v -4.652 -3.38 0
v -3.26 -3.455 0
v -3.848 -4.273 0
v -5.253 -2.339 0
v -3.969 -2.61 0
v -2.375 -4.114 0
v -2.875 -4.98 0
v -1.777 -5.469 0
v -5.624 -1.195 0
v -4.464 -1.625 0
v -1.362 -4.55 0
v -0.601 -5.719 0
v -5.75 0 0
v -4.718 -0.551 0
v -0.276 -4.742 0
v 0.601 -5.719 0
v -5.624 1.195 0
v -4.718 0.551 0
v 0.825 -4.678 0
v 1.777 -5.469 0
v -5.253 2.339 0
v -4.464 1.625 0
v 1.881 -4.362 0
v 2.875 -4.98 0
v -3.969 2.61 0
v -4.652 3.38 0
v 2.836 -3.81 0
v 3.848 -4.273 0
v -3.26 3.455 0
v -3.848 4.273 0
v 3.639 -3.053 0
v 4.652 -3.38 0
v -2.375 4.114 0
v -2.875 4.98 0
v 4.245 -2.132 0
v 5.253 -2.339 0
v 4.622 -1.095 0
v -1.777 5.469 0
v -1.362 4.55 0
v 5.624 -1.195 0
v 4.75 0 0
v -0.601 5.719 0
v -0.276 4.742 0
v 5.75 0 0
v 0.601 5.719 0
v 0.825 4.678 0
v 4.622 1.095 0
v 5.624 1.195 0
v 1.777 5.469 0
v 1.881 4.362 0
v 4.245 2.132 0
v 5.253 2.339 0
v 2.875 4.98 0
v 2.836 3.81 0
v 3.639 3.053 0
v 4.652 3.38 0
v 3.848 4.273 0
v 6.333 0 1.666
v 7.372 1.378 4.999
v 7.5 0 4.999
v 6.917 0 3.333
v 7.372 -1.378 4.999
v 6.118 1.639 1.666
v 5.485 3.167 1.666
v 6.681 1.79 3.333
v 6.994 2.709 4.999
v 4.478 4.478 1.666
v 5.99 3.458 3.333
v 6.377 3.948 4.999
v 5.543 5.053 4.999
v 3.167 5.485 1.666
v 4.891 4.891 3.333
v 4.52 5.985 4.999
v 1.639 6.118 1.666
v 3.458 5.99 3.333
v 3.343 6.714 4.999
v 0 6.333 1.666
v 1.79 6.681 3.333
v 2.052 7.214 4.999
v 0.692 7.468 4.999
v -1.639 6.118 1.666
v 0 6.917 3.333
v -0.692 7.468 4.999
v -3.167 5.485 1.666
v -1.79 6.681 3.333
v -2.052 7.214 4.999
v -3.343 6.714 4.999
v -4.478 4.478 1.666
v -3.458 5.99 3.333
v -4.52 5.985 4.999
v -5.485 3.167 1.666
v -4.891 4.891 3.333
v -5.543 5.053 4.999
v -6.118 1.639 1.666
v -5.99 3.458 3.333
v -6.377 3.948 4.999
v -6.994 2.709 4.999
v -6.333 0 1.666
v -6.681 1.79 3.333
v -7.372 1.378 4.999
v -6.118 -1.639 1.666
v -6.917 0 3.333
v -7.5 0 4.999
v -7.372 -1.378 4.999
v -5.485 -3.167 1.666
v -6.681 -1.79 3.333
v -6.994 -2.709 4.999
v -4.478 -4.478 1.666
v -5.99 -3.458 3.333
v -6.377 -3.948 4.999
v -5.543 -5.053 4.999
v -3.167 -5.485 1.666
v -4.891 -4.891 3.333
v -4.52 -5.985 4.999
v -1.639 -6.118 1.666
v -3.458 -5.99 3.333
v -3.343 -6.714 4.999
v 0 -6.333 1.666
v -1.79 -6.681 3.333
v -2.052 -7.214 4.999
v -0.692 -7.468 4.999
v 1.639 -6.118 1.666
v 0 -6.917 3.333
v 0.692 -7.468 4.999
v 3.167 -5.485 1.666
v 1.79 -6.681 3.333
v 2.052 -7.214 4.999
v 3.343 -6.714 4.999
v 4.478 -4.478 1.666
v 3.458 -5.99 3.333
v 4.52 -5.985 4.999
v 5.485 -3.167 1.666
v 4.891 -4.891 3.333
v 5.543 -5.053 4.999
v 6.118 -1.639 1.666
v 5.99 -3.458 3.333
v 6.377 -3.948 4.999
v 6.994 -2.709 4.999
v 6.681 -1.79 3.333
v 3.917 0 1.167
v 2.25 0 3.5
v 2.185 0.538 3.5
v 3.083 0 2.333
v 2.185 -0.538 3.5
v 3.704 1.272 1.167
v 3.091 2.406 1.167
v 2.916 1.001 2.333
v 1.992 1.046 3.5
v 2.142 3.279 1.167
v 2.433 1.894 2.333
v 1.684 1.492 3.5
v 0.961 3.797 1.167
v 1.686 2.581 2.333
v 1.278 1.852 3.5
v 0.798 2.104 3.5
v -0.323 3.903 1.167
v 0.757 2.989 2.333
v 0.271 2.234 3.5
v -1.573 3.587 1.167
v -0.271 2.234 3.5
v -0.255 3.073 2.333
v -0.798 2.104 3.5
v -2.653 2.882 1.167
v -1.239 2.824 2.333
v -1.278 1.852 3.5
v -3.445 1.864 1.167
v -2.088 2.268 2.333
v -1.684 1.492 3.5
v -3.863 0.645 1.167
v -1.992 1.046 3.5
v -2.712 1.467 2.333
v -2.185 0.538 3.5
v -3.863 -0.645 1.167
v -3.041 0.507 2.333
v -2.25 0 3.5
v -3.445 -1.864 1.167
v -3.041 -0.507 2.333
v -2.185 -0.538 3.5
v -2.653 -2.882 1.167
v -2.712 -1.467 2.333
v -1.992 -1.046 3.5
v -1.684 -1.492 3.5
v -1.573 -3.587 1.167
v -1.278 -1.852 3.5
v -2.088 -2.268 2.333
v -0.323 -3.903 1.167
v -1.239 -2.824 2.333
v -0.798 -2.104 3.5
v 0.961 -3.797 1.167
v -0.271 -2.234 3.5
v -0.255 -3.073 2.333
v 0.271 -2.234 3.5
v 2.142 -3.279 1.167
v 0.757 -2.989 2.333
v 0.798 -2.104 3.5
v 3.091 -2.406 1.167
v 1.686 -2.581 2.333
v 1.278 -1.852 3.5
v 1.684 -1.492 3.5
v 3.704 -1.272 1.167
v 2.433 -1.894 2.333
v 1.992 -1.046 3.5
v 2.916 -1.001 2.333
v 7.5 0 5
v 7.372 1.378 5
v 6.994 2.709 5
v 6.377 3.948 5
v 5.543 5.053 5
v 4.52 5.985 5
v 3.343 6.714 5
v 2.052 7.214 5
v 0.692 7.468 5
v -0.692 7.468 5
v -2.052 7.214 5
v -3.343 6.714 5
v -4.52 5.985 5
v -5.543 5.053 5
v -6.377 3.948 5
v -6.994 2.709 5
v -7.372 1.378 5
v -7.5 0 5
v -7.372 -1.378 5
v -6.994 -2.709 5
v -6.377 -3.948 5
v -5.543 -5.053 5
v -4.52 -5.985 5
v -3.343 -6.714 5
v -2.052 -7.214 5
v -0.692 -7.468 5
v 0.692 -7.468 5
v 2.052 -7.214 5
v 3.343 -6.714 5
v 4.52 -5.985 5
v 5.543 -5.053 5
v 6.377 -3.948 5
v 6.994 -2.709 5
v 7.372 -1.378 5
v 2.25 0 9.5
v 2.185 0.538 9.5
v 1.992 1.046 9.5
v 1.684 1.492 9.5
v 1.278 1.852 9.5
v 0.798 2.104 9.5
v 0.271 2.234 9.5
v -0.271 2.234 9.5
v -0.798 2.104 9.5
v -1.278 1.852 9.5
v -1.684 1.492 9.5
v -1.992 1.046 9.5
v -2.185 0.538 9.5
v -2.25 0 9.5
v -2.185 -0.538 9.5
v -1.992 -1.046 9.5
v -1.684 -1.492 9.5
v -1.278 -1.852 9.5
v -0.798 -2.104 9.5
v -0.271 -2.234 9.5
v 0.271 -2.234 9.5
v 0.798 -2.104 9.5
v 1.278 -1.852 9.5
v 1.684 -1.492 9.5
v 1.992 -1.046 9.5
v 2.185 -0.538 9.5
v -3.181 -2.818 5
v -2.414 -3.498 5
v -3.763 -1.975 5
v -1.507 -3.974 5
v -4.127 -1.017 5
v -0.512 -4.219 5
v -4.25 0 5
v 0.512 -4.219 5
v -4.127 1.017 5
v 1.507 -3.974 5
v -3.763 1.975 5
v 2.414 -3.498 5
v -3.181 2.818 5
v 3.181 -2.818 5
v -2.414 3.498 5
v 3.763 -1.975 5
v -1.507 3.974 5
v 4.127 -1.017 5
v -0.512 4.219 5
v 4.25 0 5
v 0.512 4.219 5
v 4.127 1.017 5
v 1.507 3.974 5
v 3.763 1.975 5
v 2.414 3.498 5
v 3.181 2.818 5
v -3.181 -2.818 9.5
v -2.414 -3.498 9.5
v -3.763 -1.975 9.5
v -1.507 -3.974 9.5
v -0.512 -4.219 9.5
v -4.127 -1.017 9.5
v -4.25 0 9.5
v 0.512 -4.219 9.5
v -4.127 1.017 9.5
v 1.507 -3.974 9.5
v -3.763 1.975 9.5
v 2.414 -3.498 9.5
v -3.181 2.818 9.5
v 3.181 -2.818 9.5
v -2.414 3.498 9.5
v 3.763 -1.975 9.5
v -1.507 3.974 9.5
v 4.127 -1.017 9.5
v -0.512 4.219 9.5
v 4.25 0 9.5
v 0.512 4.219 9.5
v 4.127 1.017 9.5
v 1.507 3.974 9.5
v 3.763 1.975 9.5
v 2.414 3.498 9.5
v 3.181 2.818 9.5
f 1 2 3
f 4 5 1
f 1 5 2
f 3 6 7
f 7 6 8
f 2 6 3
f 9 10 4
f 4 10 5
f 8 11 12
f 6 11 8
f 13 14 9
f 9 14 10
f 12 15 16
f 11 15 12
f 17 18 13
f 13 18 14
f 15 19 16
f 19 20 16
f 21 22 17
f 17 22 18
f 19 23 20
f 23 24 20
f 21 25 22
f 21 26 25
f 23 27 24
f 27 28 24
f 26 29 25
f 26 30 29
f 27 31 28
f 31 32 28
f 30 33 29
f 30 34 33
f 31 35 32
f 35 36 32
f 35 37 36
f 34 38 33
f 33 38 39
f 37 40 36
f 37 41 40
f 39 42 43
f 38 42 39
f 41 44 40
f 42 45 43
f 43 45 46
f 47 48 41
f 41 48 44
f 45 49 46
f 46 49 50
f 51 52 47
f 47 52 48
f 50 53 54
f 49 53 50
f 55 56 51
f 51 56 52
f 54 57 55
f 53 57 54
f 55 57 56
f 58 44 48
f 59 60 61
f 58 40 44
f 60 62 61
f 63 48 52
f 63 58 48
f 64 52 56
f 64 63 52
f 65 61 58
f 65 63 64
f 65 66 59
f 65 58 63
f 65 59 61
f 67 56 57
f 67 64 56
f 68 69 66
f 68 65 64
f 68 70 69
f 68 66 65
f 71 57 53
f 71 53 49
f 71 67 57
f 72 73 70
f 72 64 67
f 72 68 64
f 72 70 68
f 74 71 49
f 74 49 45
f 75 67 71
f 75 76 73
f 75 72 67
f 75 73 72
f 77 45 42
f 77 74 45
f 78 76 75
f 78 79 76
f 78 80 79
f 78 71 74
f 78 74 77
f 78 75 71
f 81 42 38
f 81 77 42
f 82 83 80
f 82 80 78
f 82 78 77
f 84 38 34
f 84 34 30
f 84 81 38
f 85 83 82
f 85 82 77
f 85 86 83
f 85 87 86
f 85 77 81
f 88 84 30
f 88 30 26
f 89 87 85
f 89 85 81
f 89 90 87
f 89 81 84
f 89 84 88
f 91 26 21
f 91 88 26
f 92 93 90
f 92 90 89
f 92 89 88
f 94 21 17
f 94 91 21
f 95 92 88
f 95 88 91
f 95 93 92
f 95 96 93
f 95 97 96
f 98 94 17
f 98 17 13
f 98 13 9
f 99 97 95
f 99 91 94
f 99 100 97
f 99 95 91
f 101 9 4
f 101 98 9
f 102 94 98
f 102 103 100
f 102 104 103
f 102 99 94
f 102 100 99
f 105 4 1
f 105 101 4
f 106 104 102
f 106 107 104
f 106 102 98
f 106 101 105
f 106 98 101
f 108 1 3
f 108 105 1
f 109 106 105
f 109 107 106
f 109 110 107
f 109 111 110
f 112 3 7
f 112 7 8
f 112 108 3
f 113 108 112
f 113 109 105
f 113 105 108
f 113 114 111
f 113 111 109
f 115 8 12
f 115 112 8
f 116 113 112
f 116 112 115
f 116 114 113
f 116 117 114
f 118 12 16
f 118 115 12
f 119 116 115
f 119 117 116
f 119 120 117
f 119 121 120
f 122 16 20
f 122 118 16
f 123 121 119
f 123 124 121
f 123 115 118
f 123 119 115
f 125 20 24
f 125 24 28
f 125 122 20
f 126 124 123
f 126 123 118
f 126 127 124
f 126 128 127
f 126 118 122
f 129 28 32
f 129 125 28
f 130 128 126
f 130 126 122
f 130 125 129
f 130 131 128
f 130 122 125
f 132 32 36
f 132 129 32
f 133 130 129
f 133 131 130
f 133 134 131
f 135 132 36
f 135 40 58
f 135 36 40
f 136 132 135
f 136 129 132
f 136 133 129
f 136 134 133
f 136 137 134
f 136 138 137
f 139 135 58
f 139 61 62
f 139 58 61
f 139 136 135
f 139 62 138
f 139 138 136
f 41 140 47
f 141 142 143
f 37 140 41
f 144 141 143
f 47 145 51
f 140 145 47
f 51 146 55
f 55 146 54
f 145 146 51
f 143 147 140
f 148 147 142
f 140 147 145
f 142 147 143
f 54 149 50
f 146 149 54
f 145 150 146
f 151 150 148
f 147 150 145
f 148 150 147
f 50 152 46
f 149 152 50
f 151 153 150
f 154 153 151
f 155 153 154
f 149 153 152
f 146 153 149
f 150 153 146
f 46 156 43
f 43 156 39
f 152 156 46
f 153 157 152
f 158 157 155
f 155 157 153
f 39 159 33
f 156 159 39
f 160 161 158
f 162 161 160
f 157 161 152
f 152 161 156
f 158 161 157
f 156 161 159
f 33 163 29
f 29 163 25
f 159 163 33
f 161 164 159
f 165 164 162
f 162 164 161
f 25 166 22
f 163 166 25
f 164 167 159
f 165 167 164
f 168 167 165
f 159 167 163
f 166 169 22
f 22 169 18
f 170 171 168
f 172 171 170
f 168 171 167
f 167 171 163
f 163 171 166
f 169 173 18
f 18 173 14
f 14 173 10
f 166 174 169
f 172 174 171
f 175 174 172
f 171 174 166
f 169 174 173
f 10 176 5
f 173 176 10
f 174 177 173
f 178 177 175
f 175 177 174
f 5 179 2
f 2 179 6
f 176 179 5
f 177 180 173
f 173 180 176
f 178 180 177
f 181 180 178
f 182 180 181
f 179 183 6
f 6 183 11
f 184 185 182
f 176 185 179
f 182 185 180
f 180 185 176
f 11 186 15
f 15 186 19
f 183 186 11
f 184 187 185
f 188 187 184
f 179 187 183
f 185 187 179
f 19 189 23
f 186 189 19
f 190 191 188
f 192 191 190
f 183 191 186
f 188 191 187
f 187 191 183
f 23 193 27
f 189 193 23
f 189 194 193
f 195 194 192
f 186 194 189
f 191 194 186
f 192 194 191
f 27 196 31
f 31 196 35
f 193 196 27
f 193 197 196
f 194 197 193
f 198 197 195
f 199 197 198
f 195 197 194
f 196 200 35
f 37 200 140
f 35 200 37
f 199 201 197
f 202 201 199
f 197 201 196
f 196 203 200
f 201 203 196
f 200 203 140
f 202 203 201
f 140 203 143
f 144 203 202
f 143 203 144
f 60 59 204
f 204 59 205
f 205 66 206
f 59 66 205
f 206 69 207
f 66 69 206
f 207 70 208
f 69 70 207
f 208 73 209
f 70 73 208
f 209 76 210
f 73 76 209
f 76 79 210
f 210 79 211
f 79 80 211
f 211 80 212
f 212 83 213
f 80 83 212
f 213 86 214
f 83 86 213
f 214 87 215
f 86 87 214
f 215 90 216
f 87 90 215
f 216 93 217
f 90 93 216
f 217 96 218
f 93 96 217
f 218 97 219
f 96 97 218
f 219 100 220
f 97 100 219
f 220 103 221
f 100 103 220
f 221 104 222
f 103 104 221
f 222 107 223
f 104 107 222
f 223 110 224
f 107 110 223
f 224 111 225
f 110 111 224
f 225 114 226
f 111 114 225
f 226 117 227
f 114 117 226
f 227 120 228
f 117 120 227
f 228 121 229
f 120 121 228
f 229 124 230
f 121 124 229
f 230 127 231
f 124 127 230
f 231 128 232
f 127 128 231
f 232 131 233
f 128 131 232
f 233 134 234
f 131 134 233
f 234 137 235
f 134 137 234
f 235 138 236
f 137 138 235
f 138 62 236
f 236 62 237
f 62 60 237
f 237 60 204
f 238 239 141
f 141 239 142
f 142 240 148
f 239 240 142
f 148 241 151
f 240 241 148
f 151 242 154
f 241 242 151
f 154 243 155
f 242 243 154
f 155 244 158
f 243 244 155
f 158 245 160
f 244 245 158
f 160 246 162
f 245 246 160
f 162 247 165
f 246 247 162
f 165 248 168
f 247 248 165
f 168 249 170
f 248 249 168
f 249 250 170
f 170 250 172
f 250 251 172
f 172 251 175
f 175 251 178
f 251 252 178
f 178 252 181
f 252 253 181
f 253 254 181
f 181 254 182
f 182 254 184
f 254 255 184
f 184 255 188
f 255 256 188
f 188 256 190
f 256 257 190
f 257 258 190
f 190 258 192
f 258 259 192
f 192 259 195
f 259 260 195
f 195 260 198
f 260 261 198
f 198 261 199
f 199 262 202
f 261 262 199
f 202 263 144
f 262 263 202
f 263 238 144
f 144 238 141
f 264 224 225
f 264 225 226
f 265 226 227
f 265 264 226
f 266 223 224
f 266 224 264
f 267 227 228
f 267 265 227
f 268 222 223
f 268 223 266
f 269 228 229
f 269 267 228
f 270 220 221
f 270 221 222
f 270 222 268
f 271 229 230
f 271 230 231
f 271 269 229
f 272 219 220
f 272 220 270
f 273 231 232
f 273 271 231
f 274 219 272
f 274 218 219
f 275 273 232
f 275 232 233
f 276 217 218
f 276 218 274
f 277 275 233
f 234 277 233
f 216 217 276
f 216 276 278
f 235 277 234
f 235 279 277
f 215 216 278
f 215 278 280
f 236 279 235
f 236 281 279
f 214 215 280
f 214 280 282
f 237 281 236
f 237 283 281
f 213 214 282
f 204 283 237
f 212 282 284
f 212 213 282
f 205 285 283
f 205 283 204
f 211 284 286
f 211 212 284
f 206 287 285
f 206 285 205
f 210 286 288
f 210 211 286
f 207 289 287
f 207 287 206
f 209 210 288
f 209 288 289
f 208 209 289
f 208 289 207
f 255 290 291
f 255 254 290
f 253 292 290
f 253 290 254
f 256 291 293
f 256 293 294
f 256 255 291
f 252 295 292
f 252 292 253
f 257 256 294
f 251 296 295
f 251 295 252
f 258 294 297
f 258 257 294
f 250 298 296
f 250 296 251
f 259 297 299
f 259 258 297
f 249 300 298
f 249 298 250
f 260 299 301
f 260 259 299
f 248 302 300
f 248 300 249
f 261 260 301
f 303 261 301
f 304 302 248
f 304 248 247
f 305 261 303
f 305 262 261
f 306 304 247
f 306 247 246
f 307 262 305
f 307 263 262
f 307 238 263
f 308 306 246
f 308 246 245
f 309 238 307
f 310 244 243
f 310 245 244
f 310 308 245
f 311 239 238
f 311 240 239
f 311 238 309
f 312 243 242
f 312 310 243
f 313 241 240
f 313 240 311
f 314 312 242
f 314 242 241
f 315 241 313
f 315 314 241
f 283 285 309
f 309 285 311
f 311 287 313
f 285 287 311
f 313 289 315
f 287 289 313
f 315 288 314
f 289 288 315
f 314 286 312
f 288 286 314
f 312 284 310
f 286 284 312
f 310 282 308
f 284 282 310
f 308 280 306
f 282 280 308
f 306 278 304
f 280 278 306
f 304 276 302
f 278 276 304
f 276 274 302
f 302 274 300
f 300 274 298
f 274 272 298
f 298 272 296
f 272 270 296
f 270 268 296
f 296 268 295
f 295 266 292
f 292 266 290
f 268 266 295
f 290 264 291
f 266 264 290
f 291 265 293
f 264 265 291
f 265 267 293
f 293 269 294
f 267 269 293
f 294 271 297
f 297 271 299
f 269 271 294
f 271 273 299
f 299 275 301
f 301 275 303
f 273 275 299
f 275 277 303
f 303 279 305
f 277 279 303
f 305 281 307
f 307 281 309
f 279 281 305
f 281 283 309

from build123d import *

# Parameters (mm, degrees)
SKETCH_R         = 7.5
PAD_DEPTH        = 5
SKETCH001_R      = 4.25
PAD001_DEPTH     = 4.5
SKETCH002_R      = 2.25
POCKET_DEPTH     = 9.501
CHAMFER_SIZE2    = 3.5
CHAMFER_SIZE     = 2.5
CHAMFER001_SIZE2 = 4.999
CHAMFER001_SIZE  = 1.75


with BuildPart() as part:
    # Sketch → Pad (new body)
    with BuildSketch(Plane.XY):
        Circle(SKETCH_R)
    extrude(amount=PAD_DEPTH)

    # Sketch001 (on Face3 of Pad) → Pad001 (join)
    with BuildSketch(Plane.XY.offset(5)):
        Circle(SKETCH001_R)
    extrude(amount=PAD001_DEPTH)

    # Sketch002 (on Face5 of Pad001) → Pocket (cut, through all)
    with BuildSketch(Plane.XY.offset(9.5)):
        Circle(SKETCH002_R)
    extrude(amount=-POCKET_DEPTH, mode=Mode.SUBTRACT)

    # Chamfer
    chamfer_edges = [part.edges().sort_by_distance(p)[0] for p in [
        (-2.25, 0, 0),
    ]]
    chamfer_side = part.faces().sort_by_distance((-7.287868, 0, 0))[0]
    chamfer(chamfer_edges, length=CHAMFER_SIZE, length2=CHAMFER_SIZE2, reference=chamfer_side)

    # Chamfer001
    chamfer001_edges = [part.edges().sort_by_distance(p)[0] for p in [
        (-7.5, 0, 0),
    ]]
    chamfer001_side = part.faces().sort_by_distance((-4.962132, 0, 0))[0]
    chamfer(chamfer001_edges, length=CHAMFER001_SIZE, length2=CHAMFER001_SIZE2, reference=chamfer001_side)


solid = part.part
